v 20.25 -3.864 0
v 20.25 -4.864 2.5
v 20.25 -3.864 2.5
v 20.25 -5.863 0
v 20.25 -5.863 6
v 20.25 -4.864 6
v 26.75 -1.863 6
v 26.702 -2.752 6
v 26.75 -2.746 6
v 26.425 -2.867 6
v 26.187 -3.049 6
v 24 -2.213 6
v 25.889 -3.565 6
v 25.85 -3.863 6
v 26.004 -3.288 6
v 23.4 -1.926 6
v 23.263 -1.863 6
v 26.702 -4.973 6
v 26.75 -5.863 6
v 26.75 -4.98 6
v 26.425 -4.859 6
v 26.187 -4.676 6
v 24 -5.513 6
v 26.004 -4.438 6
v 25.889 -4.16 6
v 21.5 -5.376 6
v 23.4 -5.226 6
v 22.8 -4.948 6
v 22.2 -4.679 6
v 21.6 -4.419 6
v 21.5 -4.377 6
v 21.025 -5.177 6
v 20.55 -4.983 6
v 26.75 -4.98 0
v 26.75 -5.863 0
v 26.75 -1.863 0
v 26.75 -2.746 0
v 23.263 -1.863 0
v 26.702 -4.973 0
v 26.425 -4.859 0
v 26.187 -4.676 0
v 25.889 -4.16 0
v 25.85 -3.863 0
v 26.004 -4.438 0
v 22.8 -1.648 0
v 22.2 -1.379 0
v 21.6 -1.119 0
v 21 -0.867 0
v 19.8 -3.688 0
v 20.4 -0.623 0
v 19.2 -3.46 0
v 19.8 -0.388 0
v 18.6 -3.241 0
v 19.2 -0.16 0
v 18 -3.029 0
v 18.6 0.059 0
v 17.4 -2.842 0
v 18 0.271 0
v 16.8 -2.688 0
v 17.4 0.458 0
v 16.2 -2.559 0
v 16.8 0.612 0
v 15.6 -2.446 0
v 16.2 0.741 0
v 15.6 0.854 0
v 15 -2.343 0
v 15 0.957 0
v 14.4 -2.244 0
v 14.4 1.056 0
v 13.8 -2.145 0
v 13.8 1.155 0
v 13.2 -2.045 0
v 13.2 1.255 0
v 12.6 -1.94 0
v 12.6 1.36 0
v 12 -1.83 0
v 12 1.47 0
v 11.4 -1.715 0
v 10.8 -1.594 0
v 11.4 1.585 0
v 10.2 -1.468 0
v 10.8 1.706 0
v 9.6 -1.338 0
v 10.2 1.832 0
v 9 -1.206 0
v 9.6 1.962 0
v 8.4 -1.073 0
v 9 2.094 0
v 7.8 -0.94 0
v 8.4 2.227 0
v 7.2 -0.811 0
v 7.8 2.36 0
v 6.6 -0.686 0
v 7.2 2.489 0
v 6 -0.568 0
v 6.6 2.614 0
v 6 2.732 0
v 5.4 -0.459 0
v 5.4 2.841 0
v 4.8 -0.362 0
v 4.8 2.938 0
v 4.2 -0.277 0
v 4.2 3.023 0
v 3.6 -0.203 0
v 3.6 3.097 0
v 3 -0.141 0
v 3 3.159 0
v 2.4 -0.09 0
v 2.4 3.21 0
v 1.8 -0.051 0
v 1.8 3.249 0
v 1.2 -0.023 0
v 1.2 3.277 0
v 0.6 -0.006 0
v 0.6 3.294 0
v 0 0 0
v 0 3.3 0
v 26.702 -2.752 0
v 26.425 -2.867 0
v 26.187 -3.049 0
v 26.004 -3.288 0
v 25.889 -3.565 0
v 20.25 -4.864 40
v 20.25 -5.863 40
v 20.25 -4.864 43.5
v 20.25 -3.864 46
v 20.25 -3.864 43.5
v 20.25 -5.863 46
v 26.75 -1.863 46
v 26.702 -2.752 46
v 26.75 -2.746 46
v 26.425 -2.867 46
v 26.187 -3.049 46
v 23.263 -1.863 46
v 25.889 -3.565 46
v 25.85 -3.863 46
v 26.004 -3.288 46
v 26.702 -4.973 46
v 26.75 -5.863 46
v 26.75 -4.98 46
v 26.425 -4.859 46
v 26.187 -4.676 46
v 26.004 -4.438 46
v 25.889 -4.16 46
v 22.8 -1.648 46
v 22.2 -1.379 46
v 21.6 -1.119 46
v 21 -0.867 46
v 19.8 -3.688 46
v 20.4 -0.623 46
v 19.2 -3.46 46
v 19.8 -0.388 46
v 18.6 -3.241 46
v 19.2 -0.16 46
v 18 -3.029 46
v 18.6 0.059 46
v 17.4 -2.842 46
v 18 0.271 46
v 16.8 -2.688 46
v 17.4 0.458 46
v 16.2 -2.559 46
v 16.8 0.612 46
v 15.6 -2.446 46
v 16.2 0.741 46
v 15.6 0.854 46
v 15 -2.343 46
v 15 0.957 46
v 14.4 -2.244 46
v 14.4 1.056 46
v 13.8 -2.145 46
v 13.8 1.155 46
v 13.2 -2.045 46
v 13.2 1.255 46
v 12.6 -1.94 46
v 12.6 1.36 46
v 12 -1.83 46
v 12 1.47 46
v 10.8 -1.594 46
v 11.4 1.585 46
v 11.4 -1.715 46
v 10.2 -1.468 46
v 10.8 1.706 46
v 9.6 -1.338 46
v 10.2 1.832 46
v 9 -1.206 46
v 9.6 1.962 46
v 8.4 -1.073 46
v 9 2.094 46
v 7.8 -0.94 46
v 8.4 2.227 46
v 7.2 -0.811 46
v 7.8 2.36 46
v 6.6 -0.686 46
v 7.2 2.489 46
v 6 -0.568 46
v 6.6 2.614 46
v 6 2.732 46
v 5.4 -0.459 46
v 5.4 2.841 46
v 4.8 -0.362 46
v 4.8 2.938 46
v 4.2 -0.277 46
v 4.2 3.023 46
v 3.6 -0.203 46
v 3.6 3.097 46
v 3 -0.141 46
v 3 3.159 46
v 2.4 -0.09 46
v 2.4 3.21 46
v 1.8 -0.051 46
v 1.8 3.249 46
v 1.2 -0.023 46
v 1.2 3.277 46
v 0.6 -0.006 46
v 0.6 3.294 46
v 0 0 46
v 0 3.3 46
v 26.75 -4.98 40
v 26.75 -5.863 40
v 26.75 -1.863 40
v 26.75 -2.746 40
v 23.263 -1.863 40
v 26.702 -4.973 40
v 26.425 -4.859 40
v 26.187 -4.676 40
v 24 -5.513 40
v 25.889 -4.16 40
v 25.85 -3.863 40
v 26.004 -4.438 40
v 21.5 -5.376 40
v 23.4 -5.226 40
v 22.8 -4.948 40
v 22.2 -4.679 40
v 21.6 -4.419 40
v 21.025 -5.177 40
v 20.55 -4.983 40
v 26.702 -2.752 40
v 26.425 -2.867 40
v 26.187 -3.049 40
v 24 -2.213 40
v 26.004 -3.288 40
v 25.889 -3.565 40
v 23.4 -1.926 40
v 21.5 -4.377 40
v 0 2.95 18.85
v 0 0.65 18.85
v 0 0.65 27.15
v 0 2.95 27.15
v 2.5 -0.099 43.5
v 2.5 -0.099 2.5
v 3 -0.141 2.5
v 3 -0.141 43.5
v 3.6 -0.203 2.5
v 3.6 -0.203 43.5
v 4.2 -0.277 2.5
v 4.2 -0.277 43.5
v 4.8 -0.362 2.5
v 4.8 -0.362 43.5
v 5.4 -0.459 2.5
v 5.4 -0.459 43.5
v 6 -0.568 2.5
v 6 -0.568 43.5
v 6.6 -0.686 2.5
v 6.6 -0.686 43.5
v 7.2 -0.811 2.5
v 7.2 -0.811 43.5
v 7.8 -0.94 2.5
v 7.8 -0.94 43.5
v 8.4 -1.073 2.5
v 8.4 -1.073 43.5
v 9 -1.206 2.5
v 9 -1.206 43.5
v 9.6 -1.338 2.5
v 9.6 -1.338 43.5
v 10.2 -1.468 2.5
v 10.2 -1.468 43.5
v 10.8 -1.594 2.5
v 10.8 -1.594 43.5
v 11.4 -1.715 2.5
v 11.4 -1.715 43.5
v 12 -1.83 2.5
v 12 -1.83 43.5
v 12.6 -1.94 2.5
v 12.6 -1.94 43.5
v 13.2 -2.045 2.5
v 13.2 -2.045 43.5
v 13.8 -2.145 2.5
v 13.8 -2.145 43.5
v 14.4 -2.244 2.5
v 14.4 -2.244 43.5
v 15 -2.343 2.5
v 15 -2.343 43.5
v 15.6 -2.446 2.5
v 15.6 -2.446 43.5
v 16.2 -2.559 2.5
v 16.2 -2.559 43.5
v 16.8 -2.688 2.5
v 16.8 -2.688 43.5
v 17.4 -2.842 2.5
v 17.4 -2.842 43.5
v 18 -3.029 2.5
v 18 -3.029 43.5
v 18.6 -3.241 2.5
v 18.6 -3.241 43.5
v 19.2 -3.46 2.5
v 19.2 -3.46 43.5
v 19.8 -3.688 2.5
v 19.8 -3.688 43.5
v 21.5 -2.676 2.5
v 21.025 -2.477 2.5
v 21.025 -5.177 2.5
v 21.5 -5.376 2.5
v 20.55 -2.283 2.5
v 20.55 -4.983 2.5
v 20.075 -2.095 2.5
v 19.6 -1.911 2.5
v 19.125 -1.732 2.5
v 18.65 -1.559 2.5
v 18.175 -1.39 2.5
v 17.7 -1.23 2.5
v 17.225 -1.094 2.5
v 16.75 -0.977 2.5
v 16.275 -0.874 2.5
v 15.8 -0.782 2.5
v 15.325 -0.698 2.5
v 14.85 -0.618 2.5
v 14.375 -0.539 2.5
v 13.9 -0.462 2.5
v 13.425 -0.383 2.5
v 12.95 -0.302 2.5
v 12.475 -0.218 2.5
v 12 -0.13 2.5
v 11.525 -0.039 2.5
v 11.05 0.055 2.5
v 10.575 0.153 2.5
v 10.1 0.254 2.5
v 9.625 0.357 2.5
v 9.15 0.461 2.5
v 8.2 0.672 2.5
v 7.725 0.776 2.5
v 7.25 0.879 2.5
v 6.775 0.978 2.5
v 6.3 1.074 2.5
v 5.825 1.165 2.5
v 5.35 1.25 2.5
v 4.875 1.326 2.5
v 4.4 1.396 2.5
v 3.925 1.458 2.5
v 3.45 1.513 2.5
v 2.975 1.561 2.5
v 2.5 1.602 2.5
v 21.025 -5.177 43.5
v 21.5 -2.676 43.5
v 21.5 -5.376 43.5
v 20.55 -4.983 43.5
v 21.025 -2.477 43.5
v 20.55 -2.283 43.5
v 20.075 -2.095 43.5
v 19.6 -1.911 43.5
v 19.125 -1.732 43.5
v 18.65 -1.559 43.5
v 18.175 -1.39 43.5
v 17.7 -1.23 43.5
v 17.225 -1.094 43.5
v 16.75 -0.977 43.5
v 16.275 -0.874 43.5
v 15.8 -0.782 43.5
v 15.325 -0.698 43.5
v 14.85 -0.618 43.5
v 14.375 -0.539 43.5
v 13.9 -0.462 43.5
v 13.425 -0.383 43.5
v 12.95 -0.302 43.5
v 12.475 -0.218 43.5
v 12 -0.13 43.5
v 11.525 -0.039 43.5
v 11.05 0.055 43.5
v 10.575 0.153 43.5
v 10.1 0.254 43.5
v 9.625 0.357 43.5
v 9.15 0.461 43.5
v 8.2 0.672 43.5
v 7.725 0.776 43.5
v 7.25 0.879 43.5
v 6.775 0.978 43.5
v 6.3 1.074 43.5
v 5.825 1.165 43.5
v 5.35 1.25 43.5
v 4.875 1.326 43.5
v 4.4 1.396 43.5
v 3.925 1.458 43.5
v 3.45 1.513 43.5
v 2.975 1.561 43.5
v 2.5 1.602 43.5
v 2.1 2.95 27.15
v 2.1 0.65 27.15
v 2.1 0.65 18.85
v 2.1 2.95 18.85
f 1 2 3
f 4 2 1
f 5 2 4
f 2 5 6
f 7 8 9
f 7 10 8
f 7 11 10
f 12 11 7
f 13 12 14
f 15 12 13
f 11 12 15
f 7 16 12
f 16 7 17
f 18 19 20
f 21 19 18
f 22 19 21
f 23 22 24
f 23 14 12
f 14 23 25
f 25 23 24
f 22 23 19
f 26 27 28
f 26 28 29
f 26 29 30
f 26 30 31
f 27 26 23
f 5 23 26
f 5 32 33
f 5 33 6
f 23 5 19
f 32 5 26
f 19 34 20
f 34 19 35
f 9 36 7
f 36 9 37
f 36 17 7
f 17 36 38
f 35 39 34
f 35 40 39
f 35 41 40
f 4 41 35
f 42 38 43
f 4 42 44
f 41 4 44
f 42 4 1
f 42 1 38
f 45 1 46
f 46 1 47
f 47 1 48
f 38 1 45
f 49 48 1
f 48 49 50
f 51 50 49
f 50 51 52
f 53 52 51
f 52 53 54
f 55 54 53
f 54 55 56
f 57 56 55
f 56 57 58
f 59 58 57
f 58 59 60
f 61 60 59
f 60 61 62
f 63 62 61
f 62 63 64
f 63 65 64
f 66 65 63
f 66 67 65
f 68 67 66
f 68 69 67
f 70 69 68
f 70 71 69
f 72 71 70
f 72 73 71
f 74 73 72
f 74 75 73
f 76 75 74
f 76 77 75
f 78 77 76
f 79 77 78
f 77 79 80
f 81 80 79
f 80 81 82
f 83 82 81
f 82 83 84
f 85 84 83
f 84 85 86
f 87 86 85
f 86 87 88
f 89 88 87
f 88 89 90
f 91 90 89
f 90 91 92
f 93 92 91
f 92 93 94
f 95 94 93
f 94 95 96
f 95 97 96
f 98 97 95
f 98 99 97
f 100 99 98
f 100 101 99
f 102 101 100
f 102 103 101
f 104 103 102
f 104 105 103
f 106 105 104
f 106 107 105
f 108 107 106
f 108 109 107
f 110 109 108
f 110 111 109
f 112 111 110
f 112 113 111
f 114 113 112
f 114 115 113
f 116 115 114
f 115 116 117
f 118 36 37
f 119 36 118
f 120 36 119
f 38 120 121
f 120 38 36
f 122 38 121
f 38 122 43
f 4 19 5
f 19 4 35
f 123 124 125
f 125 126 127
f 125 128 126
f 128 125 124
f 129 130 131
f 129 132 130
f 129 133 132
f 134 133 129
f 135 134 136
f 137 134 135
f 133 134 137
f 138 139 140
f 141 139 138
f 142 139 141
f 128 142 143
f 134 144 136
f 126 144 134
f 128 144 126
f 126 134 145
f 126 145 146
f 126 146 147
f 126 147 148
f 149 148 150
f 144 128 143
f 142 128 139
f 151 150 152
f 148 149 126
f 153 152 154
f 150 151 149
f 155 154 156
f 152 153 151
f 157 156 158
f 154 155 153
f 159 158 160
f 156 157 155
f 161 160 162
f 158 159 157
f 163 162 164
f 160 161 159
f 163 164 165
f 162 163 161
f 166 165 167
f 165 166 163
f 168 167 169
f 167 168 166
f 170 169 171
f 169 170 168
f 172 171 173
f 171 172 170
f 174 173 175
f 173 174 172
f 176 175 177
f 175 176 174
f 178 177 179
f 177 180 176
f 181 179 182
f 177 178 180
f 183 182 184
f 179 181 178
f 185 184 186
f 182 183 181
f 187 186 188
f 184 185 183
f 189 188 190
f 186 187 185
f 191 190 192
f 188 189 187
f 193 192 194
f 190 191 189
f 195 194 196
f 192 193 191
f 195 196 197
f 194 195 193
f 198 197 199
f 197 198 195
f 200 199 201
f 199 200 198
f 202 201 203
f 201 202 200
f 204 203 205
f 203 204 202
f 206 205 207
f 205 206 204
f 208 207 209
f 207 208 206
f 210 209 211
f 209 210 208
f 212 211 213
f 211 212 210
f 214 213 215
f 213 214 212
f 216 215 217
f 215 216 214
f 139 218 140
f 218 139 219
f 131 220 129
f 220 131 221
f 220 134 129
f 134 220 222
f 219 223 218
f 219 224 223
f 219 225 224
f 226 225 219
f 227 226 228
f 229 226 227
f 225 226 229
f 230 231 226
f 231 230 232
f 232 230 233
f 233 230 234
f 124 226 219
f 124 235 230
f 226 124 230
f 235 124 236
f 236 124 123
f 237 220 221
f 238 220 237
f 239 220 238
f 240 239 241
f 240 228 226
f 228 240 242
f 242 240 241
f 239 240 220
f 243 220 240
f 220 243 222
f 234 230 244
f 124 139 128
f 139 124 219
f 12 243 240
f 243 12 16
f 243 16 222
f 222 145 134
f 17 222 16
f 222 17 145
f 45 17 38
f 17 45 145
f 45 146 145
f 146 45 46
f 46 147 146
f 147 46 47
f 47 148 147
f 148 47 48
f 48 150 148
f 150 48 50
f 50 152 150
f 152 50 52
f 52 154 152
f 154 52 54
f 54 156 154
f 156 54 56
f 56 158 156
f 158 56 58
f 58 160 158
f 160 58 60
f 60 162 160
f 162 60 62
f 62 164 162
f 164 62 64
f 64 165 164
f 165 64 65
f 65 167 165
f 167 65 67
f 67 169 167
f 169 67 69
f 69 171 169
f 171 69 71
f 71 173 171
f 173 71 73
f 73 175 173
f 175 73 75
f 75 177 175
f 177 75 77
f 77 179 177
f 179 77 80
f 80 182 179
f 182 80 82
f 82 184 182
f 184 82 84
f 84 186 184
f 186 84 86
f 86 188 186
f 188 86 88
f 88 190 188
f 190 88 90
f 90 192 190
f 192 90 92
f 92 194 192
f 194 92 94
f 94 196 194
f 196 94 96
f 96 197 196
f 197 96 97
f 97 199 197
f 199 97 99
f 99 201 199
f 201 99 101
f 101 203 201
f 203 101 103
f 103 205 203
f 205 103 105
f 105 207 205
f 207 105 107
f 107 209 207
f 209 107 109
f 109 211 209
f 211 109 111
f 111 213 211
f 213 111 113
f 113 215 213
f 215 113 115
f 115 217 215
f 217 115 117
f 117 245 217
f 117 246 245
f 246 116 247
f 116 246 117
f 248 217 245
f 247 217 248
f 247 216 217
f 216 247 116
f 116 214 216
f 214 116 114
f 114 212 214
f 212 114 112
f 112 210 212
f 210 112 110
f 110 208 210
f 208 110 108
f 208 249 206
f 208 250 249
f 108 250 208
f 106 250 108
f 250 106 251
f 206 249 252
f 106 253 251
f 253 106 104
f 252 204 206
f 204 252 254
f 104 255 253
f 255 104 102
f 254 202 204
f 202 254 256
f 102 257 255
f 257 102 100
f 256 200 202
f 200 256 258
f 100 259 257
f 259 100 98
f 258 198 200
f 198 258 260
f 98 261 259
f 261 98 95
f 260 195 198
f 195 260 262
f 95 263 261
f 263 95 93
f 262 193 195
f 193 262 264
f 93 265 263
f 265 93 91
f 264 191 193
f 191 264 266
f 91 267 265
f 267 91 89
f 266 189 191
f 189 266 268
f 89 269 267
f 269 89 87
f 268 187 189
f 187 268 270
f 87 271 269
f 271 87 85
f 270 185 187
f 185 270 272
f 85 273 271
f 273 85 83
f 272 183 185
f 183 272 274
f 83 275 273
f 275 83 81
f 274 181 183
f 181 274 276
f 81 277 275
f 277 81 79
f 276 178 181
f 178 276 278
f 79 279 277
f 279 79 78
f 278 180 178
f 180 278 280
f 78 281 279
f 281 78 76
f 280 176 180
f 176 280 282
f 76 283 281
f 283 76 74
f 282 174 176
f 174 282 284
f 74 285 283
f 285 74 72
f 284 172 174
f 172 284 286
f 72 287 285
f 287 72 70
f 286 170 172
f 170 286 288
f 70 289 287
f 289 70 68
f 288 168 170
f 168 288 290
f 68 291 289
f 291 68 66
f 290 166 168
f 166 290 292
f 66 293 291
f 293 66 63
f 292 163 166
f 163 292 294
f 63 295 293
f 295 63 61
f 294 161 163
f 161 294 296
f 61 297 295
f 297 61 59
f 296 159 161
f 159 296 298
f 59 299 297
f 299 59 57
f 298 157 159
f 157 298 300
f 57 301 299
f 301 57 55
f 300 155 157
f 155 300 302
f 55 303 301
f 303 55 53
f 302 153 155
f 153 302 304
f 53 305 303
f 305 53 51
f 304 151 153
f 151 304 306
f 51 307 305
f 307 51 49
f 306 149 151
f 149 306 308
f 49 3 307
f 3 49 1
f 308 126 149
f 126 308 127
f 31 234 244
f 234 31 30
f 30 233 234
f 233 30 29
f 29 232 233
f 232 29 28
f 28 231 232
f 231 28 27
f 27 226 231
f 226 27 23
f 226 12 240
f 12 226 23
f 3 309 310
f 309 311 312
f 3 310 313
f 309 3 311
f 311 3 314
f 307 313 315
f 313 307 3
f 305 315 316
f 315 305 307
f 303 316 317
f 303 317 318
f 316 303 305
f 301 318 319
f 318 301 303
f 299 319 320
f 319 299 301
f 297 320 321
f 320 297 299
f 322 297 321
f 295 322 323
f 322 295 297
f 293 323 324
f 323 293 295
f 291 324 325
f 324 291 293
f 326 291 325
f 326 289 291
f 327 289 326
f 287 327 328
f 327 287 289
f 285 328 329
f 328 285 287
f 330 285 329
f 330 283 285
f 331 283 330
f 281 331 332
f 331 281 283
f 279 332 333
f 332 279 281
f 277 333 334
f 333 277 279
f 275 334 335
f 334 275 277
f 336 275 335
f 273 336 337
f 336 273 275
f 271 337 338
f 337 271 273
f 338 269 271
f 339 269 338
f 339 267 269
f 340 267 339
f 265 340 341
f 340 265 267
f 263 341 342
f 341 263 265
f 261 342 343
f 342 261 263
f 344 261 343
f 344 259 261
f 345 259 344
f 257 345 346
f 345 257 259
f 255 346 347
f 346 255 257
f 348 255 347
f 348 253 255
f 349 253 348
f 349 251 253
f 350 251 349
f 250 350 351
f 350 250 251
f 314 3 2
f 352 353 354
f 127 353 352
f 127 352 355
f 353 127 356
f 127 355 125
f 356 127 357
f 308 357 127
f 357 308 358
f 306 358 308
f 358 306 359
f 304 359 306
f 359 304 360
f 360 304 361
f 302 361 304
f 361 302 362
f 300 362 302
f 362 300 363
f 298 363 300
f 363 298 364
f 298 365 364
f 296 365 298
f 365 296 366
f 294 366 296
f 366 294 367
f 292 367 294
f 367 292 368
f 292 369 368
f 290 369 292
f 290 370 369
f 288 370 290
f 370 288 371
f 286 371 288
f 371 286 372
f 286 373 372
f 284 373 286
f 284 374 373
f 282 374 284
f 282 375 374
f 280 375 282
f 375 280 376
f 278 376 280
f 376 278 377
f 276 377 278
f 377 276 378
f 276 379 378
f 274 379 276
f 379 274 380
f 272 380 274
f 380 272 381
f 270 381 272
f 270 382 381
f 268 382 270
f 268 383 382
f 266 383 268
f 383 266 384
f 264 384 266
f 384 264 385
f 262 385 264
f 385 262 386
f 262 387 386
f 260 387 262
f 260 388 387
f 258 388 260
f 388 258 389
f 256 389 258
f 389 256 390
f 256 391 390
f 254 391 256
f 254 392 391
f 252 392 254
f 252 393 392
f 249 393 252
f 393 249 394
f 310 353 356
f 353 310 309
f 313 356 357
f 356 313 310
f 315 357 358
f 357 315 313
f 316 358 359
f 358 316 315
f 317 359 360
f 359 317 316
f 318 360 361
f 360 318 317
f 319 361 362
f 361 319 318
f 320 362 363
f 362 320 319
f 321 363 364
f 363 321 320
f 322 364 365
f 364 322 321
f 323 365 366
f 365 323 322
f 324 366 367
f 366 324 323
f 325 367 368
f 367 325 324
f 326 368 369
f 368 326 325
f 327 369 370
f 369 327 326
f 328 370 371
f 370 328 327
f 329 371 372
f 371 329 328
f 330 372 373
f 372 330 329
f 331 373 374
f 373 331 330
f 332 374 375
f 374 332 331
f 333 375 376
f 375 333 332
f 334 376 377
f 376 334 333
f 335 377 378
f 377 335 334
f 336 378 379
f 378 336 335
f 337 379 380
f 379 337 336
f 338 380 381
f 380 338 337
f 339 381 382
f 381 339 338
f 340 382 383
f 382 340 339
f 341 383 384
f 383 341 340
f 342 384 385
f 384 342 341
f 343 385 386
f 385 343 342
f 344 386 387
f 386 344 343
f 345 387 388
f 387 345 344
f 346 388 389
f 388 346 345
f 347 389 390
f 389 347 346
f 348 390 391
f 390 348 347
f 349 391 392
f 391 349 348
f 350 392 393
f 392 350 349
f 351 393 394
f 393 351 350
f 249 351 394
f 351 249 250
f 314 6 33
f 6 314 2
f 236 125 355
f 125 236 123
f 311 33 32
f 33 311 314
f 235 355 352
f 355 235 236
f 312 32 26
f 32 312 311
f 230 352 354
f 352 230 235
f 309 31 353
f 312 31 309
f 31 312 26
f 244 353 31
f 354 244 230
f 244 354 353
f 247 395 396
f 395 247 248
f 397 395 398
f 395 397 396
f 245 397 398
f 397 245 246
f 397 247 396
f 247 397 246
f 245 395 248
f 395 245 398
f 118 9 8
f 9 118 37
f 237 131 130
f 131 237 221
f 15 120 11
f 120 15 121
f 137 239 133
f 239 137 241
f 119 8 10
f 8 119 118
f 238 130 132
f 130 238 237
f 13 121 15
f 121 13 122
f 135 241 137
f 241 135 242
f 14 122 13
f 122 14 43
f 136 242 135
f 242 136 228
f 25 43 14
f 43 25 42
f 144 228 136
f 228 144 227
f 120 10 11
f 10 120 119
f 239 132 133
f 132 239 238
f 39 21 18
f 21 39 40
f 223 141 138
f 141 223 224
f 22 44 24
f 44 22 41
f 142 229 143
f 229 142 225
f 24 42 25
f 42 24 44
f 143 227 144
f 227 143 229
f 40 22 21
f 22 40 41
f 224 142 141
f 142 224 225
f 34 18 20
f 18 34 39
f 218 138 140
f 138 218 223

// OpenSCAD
// ============================================================
// Wrist-conforming mount piece (independent of puck body)
// Sits on ONE side of the puck; print two, mirror for the other.
// The LRA window stays bare — this piece never covers it.
//
// Modeling axes (before you rotate for your own print orientation):
//   X = curve "run" from the puck-side edge (x=0) out to the
//       strap-side edge (x=mount_run)
//   Y = height/sag of the curve (this is the direction that
//       drops away from the puck as the piece follows the wrist)
//   Z = width along the wrist / strap direction (mount_length)
//
// Curve is a smooth blend of two circular arcs: tighter radius
// near the puck (r_inner), gentler radius near the strap edge
// (r_outer), blended over [blend_start, blend_end]. This is a
// single difference() between two well-conditioned (smooth,
// non-spiky) extruded solids -- not the multi-union pattern that
// broke CGAL on the cameo project, so no heightmap workaround
// should be needed here. Render-tested below.
// ============================================================

// ---------- PARAMETERS (mm) ----------------------------------
mount_run    = 24;   // curve profile length, puck-edge to strap-edge
mount_length = 46;   // width along the wrist (strap direction) --
                       // widened from 30mm: see strap-ear section below,
                       // this number is no longer arbitrary, it's derived
                       // from needing 30mm webbing to actually fit with
                       // connected ears (see the comment there for why)

r_inner = 32;   // curvature radius near the puck edge (tighter)
r_outer = 55;   // curvature radius near the strap edge (gentler)
blend_start = 6;     // x where blend away from r_inner begins
blend_end   = 18;    // x where blend to r_outer completes

back_thickness = 1.6;   // solid backing thickness above the pocket floor (structural)
rim_width      = 2.5;   // solid rim border around the foam pocket (all sides)

foam_thickness = 2.0;   // target foam pad thickness (adjust once you've picked stock)
foam_proud     = 0.3;   // how far the foam should sit proud of the rim at rest
pocket_depth   = foam_thickness - foam_proud;  // recess cut UP from the rim plane for the foam

seg = 40;   // profile sample resolution
$fn = 60;

// ---------- CURVE MATH ----------------------------------------
function sag(x, r) = r - sqrt(max(r*r - x*x, 0));

function smoothstep(x, a, b) =
    let(t = min(max((x - a) / (b - a), 0), 1))
    t * t * (3 - 2 * t);

function sag_blend(x) =
    let(w = smoothstep(x, blend_start, blend_end))
    sag(x, r_inner) * (1 - w) + sag(x, r_outer) * w;

// skin-facing (bottom / rim) curve -- dips down (negative) as x grows
function z_bottom(x) = -sag_blend(x);
// pocket floor: recessed UP from the rim plane by pocket_depth
function z_floor(x) = z_bottom(x) + pocket_depth;
// outer back surface, above the floor by the structural backing
function shell_top_z(x) = z_floor(x) + back_thickness;

// ---------- 2D PROFILES -----------------------------------------
module shell_profile() {
    bottom_pts = [ for (i = [0:seg]) let(x = mount_run * i / seg) [x, z_bottom(x)] ];
    top_pts    = [ for (i = [seg:-1:0]) let(x = mount_run * i / seg) [x, shell_top_z(x)] ];
    polygon(concat(bottom_pts, top_pts));
}

// Cuts the pocket from the skin-facing (bottom) side up to the
// floor -- inset by rim_width in x so a solid rim survives all
// the way around. The -1 undercut guarantees the cut breaks
// cleanly through the bottom face rather than leaving a skin.
module pocket_profile() {
    x0 = rim_width;
    x1 = mount_run - rim_width;
    bottom_pts = [ for (i = [0:seg]) let(x = x0 + (x1 - x0) * i / seg) [x, z_bottom(x) - 1] ];
    top_pts    = [ for (i = [seg:-1:0]) let(x = x0 + (x1 - x0) * i / seg) [x, z_floor(x)] ];
    polygon(concat(bottom_pts, top_pts));
}

// ---------- 3D PIECE ---------------------------------------------
module mount_piece() {
    difference() {
        union() {
            linear_extrude(height = mount_length)
                shell_profile();
            strap_tab();
        }
        translate([0, 0, rim_width])
            linear_extrude(height = mount_length - 2 * rim_width)
                pocket_profile();
        key_slot_cutter();
        rod_hole_cutter();
    }
}

// ---------- STRAP EARS + CAPTURED ROD -----------------------------
// REBUILT after a real print failure: the first version centered
// the ears around a 32mm gap while the piece itself was only 30mm
// wide -- there is no way to fit a gap wider than the piece and
// still have the ears touch it. Each ear ended up floating ~1mm
// short of the shell, connected to nothing. What printed was two
// disconnected islands held together only by the slicer's own
// support lattice -- which is exactly the "spring-like" structure
// Sean found between the two end blocks. Caught from a real print,
// not caught by "Simple: yes" or the rod-hole probe, because neither
// of those checks verifies that separate solid islands are actually
// connected to each other. Fixed properly this time with an actual
// connected-component check (see check_connectivity.py), not just a
// manifold check.
//
// This time: ear_w is chosen first (comfortable wall around the rod
// hole), then rod_span and mount_length are DERIVED from it and from
// the webbing width -- not picked independently and hoped to fit.
webbing_w  = 30.0;
webbing_t  = 2.2;
ear_w      = 6.0;   // each ear's width (z-extent) -- wall around the
                     // 2.3mm hole is (ear_w - rod_hole_d)/2 ~= 1.85mm
rod_span   = mount_length - 2 * ear_w;   // derived, not independent --
                                          // guaranteed to fit inside
                                          // mount_length by construction
ear_len    = 6.0;    // how far each ear extends past mount_run
ear_t      = 4.0;    // ear thickness (y), independent of the thin edge
rod_hole_d      = 2.3;   // M2 rod clearance, free-spinning
rod_hole_inset  = 3.0;   // distance from each ear's outer tip

function tab_y_center() = (z_bottom(mount_run) + shell_top_z(mount_run)) / 2;
// Ears now sit WITHIN [0, mount_length], flush against each end --
// this is what actually keeps them connected to the shell, since the
// shell has continuous solid cross-section across its whole
// mount_length span. The 0.5mm x-overlap (below) only helps if the
// ear's z-range is a subset of the shell's z-range in the first
// place -- that was the part the first version got wrong.
function ear1_z() = ear_w / 2;
function ear2_z() = mount_length - ear_w / 2;

module strap_tab() {
    for (ez = [ear1_z(), ear2_z()])
        translate([mount_run - 0.5, tab_y_center(), ez])
            cube([ear_len + 0.5, ear_t, ear_w], center = true);
}

module rod_hole_cutter() {
    hole_x = mount_run + ear_len - rod_hole_inset;
    // spans both ears and the open gap between them -- harmless
    // where there's no material (the gap), only cuts where it
    // overlaps the two ear blocks
    translate([hole_x, tab_y_center(), ear1_z() - ear_w/2 - 1])
        cylinder(h = (ear2_z() + ear_w/2 + 1) - (ear1_z() - ear_w/2 - 1),
                  d = rod_hole_d, $fn = 24);
}

// ---------- REGISTRATION KEY SLOT ---------------------------------
// Matches the tongue on the puck's ±X wall (wrist_puck_enclosure
// KEY_* params). Cut from the puck-facing (x=0) edge, within the
// solid rim_width=2.5mm band -- i.e. before the foam pocket starts
// -- so it doesn't intrude on the pocket. See the puck file's KEY_*
// comment block for the shared-plane convention and the "first-pass,
// true up by hand" caveat; same applies here.
key_clearance = 0.3;   // loose dry-fit, not a press fit
key_depth = 1.8 + key_clearance;  // must match puck KEY_H + clearance
key_w     = 8.0 + key_clearance;  // must match puck KEY_W + clearance
key_t     = 2.0 + key_clearance;  // must match puck KEY_T + clearance
key_z     = 1.8;                  // must match puck KEY_Z

module key_slot_cutter() {
    // x = depth into the piece (undercut past x=0 so the cut
    //     breaks cleanly through the face rather than sitting
    //     tangent to it)
    // y = key_t  (mount piece's height/sag axis == puck's Z)
    // z = key_w  (mount piece's width axis == puck's Y)
    translate([(key_depth - 1) / 2, key_z, mount_length / 2])
        cube([key_depth + 1, key_t, key_w], center = true);
}

mount_piece();

// For the mirrored (opposite-side) piece:
// mirror([1, 0, 0]) mount_piece();
